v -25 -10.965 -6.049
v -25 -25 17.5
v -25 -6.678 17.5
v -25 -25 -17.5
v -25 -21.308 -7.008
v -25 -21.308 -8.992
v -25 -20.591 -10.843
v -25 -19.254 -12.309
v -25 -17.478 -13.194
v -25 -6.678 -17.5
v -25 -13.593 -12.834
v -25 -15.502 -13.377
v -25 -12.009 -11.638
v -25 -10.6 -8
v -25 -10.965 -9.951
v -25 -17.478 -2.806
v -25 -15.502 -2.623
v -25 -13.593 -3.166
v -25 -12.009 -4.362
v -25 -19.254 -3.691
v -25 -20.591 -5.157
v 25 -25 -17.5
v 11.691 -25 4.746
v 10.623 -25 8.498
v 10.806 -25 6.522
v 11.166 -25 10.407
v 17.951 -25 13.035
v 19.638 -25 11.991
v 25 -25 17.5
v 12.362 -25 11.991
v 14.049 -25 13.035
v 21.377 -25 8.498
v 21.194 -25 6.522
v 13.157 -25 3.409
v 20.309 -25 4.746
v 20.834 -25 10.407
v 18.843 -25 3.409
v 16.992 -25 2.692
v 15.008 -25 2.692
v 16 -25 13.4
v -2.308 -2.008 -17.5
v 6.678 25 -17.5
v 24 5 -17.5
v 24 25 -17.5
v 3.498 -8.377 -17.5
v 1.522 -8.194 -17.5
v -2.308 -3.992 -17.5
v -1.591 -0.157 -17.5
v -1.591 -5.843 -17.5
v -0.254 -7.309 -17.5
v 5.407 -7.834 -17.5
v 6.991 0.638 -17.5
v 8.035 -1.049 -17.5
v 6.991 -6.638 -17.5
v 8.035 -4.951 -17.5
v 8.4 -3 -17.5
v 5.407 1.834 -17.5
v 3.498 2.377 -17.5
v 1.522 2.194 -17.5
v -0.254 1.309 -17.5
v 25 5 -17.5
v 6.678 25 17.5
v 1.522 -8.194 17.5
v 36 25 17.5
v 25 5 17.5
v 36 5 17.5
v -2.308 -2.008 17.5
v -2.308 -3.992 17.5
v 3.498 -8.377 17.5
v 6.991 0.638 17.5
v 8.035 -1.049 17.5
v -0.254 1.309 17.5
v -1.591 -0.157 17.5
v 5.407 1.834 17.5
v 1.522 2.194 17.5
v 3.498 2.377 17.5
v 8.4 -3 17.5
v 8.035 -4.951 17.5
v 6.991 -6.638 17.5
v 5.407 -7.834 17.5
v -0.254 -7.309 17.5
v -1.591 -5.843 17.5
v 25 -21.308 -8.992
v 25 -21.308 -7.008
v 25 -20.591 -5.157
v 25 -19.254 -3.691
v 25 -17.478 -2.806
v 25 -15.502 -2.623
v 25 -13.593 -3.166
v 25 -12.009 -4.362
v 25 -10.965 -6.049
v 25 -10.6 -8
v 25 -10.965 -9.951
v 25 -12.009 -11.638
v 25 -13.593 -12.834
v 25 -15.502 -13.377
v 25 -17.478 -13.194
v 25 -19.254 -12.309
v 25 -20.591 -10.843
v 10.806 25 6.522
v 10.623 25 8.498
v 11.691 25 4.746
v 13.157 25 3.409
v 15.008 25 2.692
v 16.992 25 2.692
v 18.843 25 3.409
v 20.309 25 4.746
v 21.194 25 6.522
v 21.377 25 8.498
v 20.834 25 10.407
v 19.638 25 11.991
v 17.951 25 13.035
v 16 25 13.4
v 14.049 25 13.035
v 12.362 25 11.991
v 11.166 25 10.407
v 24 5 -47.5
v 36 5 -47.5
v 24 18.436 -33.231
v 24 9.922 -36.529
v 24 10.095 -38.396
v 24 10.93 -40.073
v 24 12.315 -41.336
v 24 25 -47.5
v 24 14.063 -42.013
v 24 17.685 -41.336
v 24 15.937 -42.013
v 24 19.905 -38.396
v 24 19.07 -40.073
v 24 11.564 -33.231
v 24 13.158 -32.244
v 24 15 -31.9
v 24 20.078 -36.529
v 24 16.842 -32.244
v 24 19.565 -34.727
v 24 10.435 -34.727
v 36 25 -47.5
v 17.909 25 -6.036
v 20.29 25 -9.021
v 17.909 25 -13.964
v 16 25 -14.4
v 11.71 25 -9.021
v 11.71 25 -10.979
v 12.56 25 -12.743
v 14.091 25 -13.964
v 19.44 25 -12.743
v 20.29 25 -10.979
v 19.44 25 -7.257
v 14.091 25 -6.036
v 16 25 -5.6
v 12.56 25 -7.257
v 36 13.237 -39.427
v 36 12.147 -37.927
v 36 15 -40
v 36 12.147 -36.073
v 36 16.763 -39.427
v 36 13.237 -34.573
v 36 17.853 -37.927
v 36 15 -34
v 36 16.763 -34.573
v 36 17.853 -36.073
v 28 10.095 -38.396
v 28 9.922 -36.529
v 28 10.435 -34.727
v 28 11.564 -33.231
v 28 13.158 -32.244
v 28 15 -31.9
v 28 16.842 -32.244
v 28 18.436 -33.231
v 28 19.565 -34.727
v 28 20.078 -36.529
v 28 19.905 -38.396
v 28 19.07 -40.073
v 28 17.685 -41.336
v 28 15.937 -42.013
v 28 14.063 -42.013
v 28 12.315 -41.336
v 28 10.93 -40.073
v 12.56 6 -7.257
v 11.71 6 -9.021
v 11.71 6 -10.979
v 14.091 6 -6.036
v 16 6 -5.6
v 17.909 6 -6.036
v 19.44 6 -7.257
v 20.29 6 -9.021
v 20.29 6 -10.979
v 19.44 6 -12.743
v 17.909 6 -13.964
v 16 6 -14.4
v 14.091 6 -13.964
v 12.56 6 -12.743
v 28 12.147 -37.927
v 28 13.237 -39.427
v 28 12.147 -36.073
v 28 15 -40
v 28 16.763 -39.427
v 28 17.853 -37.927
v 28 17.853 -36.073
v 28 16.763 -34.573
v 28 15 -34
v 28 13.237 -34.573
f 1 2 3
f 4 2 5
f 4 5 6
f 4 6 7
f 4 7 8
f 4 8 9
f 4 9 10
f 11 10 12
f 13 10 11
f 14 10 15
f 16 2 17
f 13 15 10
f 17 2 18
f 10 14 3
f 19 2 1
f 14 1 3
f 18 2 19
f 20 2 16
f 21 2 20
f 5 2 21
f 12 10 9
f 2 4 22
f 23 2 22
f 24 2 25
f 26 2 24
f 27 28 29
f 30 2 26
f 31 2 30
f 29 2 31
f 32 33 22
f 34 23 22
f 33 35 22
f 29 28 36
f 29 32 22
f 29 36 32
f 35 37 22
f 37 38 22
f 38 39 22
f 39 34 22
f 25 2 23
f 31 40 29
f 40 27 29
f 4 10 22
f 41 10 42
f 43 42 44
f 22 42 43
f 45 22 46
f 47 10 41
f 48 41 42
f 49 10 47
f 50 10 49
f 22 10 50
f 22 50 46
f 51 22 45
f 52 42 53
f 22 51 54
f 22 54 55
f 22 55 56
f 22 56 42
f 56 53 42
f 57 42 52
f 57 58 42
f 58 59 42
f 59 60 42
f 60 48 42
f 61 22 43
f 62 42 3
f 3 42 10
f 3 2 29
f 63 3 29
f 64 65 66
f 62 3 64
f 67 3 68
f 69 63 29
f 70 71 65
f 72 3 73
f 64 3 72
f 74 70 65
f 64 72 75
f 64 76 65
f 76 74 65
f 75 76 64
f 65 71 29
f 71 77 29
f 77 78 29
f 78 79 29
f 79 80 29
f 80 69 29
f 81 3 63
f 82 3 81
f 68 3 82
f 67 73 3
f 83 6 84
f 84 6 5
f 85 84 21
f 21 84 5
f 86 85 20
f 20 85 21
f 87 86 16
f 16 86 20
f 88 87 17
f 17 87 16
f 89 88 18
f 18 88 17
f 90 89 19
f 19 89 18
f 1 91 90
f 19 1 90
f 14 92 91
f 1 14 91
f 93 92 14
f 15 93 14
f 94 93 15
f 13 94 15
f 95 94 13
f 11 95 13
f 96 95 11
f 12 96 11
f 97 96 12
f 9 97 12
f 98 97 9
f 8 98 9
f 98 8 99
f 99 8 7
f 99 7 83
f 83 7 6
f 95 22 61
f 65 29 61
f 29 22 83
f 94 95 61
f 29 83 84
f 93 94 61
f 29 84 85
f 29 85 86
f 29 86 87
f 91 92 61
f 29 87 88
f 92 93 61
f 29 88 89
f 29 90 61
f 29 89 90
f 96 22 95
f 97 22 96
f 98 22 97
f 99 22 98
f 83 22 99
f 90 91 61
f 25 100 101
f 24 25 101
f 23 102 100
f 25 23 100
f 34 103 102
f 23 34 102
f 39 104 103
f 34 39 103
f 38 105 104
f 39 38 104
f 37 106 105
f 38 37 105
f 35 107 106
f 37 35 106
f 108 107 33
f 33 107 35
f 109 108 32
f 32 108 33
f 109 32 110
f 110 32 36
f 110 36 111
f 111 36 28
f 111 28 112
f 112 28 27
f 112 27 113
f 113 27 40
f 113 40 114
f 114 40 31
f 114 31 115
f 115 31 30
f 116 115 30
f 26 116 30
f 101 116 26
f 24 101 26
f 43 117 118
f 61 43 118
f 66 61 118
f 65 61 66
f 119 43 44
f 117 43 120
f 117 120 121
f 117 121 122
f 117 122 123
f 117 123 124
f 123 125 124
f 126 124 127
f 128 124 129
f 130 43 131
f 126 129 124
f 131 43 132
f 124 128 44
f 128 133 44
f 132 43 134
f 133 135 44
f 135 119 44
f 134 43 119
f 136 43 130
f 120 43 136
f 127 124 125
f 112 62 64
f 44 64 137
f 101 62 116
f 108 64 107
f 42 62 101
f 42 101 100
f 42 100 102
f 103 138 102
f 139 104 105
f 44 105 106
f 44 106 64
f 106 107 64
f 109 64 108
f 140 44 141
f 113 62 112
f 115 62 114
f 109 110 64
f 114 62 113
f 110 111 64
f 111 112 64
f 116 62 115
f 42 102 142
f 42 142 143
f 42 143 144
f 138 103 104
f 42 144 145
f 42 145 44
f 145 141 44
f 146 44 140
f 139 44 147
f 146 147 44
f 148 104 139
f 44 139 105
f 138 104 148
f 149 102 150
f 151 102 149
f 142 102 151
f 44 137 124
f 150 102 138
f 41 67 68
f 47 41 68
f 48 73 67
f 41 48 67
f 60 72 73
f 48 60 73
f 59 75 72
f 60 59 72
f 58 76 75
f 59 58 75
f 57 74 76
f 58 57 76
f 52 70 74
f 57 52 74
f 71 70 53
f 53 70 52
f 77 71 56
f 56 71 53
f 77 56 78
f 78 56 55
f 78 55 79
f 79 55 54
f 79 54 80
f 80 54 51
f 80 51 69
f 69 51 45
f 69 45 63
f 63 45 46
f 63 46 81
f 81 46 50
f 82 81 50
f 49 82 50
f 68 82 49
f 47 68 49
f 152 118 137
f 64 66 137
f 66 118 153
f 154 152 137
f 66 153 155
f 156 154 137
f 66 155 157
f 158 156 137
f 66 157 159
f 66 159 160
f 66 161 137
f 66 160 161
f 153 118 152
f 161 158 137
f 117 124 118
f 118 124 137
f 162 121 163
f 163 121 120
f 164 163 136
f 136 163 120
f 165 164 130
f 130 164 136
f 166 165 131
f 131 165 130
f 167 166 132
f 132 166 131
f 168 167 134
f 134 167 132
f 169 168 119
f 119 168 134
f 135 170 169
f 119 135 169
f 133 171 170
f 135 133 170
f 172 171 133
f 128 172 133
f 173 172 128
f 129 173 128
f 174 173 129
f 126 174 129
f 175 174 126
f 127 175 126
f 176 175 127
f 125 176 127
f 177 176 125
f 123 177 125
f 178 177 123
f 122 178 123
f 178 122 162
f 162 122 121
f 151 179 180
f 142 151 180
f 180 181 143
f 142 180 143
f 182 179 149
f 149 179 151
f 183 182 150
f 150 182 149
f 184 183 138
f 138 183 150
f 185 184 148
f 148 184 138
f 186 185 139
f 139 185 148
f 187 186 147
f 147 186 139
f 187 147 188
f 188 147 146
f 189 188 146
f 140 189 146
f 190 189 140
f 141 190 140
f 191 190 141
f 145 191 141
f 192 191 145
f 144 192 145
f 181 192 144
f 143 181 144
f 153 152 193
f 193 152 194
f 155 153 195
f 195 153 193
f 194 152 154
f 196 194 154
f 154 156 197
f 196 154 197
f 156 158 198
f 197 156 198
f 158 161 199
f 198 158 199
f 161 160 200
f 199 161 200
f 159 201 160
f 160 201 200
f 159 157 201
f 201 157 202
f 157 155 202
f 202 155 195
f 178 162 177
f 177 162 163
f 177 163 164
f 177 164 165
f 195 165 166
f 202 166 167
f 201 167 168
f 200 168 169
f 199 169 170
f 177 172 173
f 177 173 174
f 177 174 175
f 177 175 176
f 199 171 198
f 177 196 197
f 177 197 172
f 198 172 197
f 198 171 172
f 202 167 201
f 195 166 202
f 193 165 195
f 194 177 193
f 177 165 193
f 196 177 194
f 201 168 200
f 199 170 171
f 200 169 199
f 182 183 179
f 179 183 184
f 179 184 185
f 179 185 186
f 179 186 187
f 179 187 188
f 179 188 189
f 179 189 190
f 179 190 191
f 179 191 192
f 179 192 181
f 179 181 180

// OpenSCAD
// file: RT bearing corner.scad
module base()
{

difference(){
//main box
translate(v=[0,0,0]) cube(size = [50,50,35], center = true);


//8mm rod
translate(v=[16,16,-10]) rotate(a=[90,90,0]) rotate(a=[0,0,0]) cylinder(h=20, r=4.4, center = true);

//3/8 all thread hole
translate(v=[-12,-16,-8]) rotate(a=[0,-90,0]) rotate(a=[0,0,90]) cylinder(h=80, r=5.4, center = true);

//3/8 all thread hole
translate(v=[16,0,8]) rotate(a=[0,-90,0]) rotate(a=[90,0,0]) cylinder(h=80, r=5.4, center = true);


// vertical 3/8 all thread hole
translate(v=[3,-3,0]) rotate(a=[0,0,0]) rotate(a=[0,0,0]) cylinder(h=80, r=5.4, center = true);
//cutout of all thread holes
//translate(v=[16,-16,0]) cube(size = [32,32,41], center = true);

translate(v=[-18,18,0]) rotate(a=[0,0,45]) cube(size = [45,25,41], center = true);
}

}


module finished()
{

base();	

}

finished();
// main file
use <RT bearing corner.scad>


base();
bearingmount();

module bearingmount(){

bearingy = 15;
bearingx = 30;

difference(){
translate(v=[bearingx,bearingy,-15]) cube(size = [12,20,65], center = true);



translate(v=[bearingx-5,bearingy,-37]) rotate(a=[0,-90,0]) rotate(a=[0,0,0]) cylinder(h=6, r=5.1, center = true);

translate(v=[bearingx,bearingy,-37]) rotate(a=[0,-90,0]) rotate(a=[0,0,0]) cylinder(h=15, r=3, center = true);

}
}
